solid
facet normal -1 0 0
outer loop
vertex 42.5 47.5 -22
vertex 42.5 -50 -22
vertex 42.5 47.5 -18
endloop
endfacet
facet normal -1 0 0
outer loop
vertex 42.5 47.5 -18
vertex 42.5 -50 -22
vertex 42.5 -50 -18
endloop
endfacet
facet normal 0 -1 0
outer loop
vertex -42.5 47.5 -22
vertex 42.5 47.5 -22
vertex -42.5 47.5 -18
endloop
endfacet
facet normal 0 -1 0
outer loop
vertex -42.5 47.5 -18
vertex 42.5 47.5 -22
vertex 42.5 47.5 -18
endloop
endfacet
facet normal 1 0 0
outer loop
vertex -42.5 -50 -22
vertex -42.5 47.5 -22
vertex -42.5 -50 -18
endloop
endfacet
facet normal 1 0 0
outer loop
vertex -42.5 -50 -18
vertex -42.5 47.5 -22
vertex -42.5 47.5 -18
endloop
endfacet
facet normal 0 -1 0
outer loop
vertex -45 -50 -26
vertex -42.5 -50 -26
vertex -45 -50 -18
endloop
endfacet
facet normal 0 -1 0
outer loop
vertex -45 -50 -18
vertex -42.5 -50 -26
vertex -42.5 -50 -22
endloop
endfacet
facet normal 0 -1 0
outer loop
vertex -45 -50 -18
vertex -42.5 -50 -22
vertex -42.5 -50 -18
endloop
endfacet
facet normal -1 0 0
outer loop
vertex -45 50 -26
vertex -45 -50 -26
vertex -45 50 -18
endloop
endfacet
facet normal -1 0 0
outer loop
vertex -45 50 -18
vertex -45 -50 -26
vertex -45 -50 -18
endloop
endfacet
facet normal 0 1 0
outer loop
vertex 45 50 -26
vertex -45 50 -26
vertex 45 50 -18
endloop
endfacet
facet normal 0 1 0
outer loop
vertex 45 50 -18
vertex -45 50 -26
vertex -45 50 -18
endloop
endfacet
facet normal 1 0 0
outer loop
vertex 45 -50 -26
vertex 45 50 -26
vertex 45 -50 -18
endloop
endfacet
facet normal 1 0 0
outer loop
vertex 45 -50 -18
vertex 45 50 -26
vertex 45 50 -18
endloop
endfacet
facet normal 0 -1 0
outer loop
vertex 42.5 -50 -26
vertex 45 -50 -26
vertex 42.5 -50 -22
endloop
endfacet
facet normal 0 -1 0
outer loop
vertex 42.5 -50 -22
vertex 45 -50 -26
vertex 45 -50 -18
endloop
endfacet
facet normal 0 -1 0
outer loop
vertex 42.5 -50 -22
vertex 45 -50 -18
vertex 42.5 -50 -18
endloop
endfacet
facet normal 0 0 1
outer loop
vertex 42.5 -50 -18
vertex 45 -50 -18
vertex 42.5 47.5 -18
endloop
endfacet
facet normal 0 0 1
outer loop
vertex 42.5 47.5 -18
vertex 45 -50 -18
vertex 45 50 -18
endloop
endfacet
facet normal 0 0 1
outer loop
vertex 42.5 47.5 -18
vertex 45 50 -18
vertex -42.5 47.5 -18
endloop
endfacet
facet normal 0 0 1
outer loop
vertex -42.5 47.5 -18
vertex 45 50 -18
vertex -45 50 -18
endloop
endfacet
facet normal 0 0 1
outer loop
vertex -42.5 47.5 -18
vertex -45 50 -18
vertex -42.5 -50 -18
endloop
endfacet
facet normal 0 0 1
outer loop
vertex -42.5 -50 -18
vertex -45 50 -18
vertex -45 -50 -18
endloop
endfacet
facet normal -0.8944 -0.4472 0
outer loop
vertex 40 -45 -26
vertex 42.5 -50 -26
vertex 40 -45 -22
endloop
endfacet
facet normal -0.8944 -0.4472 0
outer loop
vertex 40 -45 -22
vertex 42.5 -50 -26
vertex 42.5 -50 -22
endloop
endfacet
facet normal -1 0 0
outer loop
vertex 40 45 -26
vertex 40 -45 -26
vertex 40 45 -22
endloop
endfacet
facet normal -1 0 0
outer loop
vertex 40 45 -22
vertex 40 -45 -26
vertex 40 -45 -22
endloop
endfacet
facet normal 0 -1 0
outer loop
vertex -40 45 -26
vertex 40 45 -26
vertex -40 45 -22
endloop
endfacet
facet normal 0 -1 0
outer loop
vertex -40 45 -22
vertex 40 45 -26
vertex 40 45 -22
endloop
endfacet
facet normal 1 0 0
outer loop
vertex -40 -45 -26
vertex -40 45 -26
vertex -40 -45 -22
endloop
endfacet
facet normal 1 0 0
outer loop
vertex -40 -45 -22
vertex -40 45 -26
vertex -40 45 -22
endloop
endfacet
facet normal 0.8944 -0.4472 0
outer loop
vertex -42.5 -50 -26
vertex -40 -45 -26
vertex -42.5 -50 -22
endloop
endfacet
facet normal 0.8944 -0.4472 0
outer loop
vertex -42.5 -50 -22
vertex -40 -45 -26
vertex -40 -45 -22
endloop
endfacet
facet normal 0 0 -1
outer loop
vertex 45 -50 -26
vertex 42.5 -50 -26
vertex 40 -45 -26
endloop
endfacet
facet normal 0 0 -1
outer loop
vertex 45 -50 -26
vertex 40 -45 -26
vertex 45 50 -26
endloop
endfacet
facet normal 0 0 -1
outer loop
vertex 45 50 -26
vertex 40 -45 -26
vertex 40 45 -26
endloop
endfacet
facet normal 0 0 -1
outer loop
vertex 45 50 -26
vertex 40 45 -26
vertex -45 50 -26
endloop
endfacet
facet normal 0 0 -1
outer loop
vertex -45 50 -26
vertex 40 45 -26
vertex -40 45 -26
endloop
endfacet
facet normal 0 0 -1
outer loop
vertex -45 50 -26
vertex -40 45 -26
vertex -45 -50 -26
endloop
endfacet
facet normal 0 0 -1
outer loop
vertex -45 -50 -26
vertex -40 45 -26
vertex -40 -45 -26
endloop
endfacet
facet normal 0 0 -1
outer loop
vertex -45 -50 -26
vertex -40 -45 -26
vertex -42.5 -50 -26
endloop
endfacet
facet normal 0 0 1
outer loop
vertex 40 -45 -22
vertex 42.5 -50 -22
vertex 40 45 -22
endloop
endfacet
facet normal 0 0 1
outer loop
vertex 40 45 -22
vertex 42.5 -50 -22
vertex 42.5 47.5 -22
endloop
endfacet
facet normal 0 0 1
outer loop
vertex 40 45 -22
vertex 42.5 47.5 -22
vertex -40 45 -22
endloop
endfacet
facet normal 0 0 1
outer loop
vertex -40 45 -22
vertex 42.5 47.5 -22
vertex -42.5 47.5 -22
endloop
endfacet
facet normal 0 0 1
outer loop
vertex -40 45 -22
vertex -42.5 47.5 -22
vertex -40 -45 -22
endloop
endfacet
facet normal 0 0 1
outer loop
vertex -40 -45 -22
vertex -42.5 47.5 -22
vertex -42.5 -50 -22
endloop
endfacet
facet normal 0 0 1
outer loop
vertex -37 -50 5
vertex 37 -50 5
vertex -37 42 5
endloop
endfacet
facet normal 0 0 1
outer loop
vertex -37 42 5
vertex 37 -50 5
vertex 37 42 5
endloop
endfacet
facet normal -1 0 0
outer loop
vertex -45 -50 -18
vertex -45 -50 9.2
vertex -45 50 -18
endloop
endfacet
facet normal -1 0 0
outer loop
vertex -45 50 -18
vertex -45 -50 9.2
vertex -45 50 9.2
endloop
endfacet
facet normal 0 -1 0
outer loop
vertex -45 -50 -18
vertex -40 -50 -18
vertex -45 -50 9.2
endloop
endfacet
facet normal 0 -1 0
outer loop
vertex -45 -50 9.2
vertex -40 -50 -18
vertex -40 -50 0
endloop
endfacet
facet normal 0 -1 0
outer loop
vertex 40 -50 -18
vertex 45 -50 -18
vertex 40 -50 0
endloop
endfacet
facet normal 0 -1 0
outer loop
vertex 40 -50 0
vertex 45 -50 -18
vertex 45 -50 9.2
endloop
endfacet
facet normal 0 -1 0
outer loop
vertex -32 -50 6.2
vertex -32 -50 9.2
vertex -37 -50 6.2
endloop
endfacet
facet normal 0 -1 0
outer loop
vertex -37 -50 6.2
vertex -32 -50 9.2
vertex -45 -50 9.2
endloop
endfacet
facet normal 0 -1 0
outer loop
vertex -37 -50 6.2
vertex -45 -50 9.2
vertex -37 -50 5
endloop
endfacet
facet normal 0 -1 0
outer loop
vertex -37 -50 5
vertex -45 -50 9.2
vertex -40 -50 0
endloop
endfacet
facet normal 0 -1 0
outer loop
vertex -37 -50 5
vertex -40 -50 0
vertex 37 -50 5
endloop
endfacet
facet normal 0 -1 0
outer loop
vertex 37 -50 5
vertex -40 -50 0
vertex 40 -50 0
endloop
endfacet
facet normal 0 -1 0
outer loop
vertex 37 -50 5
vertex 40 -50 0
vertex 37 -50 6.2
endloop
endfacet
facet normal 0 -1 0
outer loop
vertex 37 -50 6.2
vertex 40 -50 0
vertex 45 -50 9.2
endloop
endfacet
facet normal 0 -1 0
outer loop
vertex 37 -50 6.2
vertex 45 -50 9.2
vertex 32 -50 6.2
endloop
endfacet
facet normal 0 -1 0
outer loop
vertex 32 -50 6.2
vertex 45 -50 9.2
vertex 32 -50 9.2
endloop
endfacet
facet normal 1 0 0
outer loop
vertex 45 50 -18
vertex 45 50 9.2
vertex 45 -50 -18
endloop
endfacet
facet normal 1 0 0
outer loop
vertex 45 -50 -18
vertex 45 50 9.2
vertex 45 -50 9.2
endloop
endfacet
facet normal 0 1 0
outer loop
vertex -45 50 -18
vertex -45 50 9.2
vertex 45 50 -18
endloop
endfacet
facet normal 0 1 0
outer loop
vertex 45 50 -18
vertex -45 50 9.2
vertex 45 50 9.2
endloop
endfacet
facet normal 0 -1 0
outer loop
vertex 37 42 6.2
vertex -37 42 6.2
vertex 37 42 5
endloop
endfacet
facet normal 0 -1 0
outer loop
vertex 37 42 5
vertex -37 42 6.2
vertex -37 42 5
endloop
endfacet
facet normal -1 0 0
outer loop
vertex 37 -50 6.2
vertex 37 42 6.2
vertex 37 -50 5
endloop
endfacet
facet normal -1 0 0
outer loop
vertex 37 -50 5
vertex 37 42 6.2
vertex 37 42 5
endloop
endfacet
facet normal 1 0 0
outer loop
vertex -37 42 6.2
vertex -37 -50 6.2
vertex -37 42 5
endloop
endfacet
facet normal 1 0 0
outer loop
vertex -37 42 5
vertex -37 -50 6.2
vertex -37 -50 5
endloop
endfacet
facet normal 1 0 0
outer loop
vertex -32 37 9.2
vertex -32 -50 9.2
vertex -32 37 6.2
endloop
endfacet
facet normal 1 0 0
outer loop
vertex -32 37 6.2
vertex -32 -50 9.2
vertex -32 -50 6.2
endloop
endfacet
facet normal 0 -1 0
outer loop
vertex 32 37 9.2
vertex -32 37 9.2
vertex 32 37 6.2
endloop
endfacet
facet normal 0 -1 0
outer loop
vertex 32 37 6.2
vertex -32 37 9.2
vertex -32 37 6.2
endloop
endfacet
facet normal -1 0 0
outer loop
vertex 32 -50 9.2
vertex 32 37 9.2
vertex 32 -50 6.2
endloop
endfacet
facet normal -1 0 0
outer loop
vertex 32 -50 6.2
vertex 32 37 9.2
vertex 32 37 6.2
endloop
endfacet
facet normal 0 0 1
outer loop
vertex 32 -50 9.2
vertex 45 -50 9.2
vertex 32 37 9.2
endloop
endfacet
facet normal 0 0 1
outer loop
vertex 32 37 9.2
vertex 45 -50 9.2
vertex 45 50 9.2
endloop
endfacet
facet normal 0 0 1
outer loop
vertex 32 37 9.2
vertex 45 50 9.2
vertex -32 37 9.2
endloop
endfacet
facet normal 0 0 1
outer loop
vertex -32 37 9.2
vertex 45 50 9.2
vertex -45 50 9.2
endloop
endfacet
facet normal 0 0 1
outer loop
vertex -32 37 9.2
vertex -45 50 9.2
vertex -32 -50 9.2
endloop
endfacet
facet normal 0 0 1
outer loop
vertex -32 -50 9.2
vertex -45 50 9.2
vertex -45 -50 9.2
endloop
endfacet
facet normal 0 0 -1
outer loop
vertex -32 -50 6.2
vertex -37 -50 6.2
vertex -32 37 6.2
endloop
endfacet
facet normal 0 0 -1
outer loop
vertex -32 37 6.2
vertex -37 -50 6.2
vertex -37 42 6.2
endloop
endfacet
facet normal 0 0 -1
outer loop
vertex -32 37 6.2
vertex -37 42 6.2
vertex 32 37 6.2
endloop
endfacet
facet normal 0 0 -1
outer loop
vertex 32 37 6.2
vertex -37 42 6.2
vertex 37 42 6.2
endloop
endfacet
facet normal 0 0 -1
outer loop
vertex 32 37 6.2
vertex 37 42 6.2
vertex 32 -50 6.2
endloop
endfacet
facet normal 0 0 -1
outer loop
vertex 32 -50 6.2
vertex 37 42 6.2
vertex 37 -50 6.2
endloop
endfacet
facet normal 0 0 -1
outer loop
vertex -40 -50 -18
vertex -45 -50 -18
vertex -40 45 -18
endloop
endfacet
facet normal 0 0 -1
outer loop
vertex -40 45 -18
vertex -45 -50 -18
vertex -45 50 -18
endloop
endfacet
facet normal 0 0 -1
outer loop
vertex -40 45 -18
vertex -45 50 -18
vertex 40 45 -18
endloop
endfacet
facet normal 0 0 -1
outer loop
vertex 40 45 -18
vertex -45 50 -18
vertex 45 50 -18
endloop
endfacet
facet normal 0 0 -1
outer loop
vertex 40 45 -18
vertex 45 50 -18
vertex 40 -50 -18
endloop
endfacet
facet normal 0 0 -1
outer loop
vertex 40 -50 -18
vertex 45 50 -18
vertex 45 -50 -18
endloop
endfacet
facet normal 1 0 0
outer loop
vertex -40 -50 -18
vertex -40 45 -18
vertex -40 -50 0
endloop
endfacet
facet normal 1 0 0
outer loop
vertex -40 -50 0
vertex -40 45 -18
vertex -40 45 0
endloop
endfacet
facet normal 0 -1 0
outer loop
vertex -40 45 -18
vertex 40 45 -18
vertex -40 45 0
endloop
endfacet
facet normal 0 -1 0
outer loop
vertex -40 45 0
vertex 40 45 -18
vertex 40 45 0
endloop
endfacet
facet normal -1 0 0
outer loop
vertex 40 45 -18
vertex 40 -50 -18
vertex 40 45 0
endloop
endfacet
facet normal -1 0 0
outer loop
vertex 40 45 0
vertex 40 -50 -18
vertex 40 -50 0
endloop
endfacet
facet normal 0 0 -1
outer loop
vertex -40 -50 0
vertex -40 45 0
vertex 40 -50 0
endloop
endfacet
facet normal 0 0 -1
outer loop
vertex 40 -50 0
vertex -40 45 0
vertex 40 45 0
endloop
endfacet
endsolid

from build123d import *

# Parameters (mm, degrees)
ESBO_O1_W                = 90
ESBO_O1_H                = 100
RESSALTO_EXTRUS_O1_DEPTH = 5
RESSALTO_EXTRUS_O2_DEPTH = 1.2
RESSALTO_EXTRUS_O3_DEPTH = 3
ESBO_O5_W                = 90
ESBO_O5_H                = 100
ESBO_O5_W_2              = 80
ESBO_O5_H_2              = 90
RESSALTO_EXTRUS_O5_DEPTH = 18
RESSALTO_EXTRUS_O6_DEPTH = 4
RESSALTO_EXTRUS_O7_DEPTH = 4
ESBO_O10_W               = 80
ESBO_O10_H               = 18
CORTE_EXTRUS_O3_DEPTH    = 14


with BuildPart() as part:
    # Esboço1 → Ressalto-extrusão1 (new body)
    with BuildSketch(Plane.XY):
        Rectangle(ESBO_O1_W, ESBO_O1_H)
    extrude(amount=RESSALTO_EXTRUS_O1_DEPTH)

    # Esboço2 → Ressalto-extrusão2 (add)
    with BuildSketch(Plane.XY.offset(5)):
        Polygon((45, 50), (-45, 50), (-45, -50), (-37, -50), (-37, -42), (-37, 42), (37, 42), (37, -42), (37, -50), (45, -50), align=None)
    extrude(amount=RESSALTO_EXTRUS_O2_DEPTH)

    # Esboço3 → Ressalto-extrusão3 (add)
    with BuildSketch(Plane.XY.offset(6.2)):
        Polygon((37, -50), (45, -50), (45, 50), (-45, 50), (-45, -50), (-37, -50), (-32, -50), (-32, 37), (32, 37), (32, -50), align=None)
    extrude(amount=RESSALTO_EXTRUS_O3_DEPTH)

    # Esboço5 → Ressalto-extrusão5 (add)
    with BuildSketch(Plane(origin=(0, 0, 0), x_dir=(-1, 0, 0), z_dir=(0, 0, -1))):
        Rectangle(ESBO_O5_W, ESBO_O5_H)
        Rectangle(ESBO_O5_W_2, ESBO_O5_H_2, mode=Mode.SUBTRACT)
    extrude(amount=RESSALTO_EXTRUS_O5_DEPTH)

    # Esboço10 → Corte-extrusão3 (cut)
    with BuildSketch(Plane(origin=(0, -45, 0), x_dir=(1, 0, 0), z_dir=(0, 1, 0))):
        with Locations((0, 9)):
            Rectangle(ESBO_O10_W, ESBO_O10_H)
    extrude(amount=-CORTE_EXTRUS_O3_DEPTH, mode=Mode.SUBTRACT)


with BuildPart() as body_2:
    # Esboço8 → Ressalto-extrusão6 (new body)
    with BuildSketch(Plane(origin=(0, 0, -18), x_dir=(-1, 0, 0), z_dir=(0, 0, -1))):
        Polygon((42.5, -50), (45, -50), (45, 50), (-45, 50), (-45, -50), (-42.5, -50), (-42.5, 47.5), (42.5, 47.5), align=None)
    extrude(amount=RESSALTO_EXTRUS_O6_DEPTH)

    # Esboço9 → Ressalto-extrusão7 (add)
    with BuildSketch(Plane(origin=(0, 0, -22), x_dir=(-1, 0, 0), z_dir=(0, 0, -1))):
        Polygon((-45, -50), (-42.5, -50), (-42.5, 47.5), (42.5, 47.5), (42.5, -50), (45, -50), (45, 50), (-45, 50), align=None)
        Polygon((42.5, -50), (40, -45), (40, 45), (-40, 45), (-40, -45), (-42.5, -50), (-42.5, 47.5), (42.5, 47.5), align=None)
    extrude(amount=RESSALTO_EXTRUS_O7_DEPTH)


solid = Compound([part.part, body_2.part])
